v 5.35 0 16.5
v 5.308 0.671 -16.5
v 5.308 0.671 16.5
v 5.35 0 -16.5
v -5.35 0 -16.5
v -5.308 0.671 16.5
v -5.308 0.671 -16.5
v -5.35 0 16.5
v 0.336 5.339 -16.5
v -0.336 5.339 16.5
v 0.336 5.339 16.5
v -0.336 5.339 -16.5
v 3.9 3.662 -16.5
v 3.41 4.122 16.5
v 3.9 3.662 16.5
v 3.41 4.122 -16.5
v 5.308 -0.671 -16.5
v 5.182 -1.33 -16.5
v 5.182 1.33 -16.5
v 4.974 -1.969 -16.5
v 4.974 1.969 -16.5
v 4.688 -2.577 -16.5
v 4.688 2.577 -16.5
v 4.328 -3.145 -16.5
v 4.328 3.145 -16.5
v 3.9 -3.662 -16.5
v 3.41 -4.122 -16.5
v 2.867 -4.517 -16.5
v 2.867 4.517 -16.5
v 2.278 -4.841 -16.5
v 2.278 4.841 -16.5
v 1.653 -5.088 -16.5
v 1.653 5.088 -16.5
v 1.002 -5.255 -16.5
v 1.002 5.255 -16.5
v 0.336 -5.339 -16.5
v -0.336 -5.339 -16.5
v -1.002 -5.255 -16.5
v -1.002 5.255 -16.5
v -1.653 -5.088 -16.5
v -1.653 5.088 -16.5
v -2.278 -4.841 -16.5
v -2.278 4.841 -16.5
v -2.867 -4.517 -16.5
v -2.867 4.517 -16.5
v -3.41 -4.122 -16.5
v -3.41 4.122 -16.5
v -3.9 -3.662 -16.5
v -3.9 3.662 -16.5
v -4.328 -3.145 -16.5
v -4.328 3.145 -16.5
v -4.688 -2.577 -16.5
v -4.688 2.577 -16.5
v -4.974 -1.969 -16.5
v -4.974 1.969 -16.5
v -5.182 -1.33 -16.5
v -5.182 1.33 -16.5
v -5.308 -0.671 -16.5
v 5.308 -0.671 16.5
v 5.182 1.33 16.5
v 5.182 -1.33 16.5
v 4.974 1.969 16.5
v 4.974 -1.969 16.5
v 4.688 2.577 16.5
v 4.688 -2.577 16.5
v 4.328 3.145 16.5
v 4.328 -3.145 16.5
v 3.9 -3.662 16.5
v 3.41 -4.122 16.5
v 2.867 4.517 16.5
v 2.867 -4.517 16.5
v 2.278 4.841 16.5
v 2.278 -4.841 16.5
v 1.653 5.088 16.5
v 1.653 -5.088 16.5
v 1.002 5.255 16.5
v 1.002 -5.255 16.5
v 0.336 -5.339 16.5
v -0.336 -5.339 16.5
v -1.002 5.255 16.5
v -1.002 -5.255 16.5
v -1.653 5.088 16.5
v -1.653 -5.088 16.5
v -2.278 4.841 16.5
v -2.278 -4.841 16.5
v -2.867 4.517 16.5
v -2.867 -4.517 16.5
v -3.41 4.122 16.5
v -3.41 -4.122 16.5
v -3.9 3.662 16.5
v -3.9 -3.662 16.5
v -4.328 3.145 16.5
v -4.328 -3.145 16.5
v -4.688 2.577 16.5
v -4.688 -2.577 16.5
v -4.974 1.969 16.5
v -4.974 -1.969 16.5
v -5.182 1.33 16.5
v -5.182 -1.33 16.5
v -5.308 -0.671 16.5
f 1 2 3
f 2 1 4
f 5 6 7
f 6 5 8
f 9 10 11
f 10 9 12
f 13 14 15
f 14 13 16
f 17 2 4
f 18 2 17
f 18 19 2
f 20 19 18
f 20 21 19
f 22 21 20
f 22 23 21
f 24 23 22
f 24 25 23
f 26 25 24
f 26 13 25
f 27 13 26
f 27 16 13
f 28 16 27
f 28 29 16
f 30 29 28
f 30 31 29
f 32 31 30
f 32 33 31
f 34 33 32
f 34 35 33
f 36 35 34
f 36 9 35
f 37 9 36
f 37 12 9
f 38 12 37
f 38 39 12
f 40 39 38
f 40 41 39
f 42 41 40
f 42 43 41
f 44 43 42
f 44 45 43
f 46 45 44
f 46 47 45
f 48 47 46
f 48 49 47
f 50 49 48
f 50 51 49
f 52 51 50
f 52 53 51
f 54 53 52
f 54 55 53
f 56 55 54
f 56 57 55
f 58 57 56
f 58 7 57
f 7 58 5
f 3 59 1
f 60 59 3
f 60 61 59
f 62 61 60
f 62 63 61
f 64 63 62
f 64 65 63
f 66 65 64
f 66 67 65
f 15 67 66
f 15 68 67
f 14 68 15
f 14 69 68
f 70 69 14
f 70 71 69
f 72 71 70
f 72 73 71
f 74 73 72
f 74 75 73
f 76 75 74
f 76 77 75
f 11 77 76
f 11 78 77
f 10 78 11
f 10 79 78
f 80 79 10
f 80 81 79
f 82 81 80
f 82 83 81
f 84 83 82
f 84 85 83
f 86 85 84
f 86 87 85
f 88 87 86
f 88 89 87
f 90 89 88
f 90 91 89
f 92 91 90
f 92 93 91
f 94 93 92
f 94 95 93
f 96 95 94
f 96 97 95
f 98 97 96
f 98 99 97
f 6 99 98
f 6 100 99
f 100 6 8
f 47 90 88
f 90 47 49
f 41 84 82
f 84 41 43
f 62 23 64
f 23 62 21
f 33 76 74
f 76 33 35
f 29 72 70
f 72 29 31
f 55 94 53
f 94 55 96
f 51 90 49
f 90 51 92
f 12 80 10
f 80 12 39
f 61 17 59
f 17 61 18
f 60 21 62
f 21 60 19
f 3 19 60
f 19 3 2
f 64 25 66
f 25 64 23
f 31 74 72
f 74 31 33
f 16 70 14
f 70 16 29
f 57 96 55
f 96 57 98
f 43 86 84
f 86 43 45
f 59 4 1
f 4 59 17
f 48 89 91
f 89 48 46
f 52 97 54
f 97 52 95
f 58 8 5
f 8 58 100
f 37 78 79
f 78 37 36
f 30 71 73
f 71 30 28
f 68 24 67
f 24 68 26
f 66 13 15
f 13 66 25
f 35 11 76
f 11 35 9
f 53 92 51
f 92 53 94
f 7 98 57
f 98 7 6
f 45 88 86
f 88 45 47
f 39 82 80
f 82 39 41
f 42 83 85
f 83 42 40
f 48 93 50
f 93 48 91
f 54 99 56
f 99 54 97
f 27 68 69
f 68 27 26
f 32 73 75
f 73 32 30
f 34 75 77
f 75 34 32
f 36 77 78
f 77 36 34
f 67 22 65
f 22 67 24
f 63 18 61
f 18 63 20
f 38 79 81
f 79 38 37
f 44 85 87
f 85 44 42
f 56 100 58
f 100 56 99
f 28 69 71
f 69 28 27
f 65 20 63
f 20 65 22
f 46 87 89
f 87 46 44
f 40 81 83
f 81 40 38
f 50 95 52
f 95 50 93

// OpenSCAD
$fn = 50;


difference() {
	union() {
		translate(v = [0, 0, -16.5000000000]) {
			cylinder(h = 33, r = 5.3500000000);
		}
	}
	union() {
		translate(v = [0, 0, -100.0000000000]) {
			cylinder(h = 200, r = 0);
		}
	}
}
